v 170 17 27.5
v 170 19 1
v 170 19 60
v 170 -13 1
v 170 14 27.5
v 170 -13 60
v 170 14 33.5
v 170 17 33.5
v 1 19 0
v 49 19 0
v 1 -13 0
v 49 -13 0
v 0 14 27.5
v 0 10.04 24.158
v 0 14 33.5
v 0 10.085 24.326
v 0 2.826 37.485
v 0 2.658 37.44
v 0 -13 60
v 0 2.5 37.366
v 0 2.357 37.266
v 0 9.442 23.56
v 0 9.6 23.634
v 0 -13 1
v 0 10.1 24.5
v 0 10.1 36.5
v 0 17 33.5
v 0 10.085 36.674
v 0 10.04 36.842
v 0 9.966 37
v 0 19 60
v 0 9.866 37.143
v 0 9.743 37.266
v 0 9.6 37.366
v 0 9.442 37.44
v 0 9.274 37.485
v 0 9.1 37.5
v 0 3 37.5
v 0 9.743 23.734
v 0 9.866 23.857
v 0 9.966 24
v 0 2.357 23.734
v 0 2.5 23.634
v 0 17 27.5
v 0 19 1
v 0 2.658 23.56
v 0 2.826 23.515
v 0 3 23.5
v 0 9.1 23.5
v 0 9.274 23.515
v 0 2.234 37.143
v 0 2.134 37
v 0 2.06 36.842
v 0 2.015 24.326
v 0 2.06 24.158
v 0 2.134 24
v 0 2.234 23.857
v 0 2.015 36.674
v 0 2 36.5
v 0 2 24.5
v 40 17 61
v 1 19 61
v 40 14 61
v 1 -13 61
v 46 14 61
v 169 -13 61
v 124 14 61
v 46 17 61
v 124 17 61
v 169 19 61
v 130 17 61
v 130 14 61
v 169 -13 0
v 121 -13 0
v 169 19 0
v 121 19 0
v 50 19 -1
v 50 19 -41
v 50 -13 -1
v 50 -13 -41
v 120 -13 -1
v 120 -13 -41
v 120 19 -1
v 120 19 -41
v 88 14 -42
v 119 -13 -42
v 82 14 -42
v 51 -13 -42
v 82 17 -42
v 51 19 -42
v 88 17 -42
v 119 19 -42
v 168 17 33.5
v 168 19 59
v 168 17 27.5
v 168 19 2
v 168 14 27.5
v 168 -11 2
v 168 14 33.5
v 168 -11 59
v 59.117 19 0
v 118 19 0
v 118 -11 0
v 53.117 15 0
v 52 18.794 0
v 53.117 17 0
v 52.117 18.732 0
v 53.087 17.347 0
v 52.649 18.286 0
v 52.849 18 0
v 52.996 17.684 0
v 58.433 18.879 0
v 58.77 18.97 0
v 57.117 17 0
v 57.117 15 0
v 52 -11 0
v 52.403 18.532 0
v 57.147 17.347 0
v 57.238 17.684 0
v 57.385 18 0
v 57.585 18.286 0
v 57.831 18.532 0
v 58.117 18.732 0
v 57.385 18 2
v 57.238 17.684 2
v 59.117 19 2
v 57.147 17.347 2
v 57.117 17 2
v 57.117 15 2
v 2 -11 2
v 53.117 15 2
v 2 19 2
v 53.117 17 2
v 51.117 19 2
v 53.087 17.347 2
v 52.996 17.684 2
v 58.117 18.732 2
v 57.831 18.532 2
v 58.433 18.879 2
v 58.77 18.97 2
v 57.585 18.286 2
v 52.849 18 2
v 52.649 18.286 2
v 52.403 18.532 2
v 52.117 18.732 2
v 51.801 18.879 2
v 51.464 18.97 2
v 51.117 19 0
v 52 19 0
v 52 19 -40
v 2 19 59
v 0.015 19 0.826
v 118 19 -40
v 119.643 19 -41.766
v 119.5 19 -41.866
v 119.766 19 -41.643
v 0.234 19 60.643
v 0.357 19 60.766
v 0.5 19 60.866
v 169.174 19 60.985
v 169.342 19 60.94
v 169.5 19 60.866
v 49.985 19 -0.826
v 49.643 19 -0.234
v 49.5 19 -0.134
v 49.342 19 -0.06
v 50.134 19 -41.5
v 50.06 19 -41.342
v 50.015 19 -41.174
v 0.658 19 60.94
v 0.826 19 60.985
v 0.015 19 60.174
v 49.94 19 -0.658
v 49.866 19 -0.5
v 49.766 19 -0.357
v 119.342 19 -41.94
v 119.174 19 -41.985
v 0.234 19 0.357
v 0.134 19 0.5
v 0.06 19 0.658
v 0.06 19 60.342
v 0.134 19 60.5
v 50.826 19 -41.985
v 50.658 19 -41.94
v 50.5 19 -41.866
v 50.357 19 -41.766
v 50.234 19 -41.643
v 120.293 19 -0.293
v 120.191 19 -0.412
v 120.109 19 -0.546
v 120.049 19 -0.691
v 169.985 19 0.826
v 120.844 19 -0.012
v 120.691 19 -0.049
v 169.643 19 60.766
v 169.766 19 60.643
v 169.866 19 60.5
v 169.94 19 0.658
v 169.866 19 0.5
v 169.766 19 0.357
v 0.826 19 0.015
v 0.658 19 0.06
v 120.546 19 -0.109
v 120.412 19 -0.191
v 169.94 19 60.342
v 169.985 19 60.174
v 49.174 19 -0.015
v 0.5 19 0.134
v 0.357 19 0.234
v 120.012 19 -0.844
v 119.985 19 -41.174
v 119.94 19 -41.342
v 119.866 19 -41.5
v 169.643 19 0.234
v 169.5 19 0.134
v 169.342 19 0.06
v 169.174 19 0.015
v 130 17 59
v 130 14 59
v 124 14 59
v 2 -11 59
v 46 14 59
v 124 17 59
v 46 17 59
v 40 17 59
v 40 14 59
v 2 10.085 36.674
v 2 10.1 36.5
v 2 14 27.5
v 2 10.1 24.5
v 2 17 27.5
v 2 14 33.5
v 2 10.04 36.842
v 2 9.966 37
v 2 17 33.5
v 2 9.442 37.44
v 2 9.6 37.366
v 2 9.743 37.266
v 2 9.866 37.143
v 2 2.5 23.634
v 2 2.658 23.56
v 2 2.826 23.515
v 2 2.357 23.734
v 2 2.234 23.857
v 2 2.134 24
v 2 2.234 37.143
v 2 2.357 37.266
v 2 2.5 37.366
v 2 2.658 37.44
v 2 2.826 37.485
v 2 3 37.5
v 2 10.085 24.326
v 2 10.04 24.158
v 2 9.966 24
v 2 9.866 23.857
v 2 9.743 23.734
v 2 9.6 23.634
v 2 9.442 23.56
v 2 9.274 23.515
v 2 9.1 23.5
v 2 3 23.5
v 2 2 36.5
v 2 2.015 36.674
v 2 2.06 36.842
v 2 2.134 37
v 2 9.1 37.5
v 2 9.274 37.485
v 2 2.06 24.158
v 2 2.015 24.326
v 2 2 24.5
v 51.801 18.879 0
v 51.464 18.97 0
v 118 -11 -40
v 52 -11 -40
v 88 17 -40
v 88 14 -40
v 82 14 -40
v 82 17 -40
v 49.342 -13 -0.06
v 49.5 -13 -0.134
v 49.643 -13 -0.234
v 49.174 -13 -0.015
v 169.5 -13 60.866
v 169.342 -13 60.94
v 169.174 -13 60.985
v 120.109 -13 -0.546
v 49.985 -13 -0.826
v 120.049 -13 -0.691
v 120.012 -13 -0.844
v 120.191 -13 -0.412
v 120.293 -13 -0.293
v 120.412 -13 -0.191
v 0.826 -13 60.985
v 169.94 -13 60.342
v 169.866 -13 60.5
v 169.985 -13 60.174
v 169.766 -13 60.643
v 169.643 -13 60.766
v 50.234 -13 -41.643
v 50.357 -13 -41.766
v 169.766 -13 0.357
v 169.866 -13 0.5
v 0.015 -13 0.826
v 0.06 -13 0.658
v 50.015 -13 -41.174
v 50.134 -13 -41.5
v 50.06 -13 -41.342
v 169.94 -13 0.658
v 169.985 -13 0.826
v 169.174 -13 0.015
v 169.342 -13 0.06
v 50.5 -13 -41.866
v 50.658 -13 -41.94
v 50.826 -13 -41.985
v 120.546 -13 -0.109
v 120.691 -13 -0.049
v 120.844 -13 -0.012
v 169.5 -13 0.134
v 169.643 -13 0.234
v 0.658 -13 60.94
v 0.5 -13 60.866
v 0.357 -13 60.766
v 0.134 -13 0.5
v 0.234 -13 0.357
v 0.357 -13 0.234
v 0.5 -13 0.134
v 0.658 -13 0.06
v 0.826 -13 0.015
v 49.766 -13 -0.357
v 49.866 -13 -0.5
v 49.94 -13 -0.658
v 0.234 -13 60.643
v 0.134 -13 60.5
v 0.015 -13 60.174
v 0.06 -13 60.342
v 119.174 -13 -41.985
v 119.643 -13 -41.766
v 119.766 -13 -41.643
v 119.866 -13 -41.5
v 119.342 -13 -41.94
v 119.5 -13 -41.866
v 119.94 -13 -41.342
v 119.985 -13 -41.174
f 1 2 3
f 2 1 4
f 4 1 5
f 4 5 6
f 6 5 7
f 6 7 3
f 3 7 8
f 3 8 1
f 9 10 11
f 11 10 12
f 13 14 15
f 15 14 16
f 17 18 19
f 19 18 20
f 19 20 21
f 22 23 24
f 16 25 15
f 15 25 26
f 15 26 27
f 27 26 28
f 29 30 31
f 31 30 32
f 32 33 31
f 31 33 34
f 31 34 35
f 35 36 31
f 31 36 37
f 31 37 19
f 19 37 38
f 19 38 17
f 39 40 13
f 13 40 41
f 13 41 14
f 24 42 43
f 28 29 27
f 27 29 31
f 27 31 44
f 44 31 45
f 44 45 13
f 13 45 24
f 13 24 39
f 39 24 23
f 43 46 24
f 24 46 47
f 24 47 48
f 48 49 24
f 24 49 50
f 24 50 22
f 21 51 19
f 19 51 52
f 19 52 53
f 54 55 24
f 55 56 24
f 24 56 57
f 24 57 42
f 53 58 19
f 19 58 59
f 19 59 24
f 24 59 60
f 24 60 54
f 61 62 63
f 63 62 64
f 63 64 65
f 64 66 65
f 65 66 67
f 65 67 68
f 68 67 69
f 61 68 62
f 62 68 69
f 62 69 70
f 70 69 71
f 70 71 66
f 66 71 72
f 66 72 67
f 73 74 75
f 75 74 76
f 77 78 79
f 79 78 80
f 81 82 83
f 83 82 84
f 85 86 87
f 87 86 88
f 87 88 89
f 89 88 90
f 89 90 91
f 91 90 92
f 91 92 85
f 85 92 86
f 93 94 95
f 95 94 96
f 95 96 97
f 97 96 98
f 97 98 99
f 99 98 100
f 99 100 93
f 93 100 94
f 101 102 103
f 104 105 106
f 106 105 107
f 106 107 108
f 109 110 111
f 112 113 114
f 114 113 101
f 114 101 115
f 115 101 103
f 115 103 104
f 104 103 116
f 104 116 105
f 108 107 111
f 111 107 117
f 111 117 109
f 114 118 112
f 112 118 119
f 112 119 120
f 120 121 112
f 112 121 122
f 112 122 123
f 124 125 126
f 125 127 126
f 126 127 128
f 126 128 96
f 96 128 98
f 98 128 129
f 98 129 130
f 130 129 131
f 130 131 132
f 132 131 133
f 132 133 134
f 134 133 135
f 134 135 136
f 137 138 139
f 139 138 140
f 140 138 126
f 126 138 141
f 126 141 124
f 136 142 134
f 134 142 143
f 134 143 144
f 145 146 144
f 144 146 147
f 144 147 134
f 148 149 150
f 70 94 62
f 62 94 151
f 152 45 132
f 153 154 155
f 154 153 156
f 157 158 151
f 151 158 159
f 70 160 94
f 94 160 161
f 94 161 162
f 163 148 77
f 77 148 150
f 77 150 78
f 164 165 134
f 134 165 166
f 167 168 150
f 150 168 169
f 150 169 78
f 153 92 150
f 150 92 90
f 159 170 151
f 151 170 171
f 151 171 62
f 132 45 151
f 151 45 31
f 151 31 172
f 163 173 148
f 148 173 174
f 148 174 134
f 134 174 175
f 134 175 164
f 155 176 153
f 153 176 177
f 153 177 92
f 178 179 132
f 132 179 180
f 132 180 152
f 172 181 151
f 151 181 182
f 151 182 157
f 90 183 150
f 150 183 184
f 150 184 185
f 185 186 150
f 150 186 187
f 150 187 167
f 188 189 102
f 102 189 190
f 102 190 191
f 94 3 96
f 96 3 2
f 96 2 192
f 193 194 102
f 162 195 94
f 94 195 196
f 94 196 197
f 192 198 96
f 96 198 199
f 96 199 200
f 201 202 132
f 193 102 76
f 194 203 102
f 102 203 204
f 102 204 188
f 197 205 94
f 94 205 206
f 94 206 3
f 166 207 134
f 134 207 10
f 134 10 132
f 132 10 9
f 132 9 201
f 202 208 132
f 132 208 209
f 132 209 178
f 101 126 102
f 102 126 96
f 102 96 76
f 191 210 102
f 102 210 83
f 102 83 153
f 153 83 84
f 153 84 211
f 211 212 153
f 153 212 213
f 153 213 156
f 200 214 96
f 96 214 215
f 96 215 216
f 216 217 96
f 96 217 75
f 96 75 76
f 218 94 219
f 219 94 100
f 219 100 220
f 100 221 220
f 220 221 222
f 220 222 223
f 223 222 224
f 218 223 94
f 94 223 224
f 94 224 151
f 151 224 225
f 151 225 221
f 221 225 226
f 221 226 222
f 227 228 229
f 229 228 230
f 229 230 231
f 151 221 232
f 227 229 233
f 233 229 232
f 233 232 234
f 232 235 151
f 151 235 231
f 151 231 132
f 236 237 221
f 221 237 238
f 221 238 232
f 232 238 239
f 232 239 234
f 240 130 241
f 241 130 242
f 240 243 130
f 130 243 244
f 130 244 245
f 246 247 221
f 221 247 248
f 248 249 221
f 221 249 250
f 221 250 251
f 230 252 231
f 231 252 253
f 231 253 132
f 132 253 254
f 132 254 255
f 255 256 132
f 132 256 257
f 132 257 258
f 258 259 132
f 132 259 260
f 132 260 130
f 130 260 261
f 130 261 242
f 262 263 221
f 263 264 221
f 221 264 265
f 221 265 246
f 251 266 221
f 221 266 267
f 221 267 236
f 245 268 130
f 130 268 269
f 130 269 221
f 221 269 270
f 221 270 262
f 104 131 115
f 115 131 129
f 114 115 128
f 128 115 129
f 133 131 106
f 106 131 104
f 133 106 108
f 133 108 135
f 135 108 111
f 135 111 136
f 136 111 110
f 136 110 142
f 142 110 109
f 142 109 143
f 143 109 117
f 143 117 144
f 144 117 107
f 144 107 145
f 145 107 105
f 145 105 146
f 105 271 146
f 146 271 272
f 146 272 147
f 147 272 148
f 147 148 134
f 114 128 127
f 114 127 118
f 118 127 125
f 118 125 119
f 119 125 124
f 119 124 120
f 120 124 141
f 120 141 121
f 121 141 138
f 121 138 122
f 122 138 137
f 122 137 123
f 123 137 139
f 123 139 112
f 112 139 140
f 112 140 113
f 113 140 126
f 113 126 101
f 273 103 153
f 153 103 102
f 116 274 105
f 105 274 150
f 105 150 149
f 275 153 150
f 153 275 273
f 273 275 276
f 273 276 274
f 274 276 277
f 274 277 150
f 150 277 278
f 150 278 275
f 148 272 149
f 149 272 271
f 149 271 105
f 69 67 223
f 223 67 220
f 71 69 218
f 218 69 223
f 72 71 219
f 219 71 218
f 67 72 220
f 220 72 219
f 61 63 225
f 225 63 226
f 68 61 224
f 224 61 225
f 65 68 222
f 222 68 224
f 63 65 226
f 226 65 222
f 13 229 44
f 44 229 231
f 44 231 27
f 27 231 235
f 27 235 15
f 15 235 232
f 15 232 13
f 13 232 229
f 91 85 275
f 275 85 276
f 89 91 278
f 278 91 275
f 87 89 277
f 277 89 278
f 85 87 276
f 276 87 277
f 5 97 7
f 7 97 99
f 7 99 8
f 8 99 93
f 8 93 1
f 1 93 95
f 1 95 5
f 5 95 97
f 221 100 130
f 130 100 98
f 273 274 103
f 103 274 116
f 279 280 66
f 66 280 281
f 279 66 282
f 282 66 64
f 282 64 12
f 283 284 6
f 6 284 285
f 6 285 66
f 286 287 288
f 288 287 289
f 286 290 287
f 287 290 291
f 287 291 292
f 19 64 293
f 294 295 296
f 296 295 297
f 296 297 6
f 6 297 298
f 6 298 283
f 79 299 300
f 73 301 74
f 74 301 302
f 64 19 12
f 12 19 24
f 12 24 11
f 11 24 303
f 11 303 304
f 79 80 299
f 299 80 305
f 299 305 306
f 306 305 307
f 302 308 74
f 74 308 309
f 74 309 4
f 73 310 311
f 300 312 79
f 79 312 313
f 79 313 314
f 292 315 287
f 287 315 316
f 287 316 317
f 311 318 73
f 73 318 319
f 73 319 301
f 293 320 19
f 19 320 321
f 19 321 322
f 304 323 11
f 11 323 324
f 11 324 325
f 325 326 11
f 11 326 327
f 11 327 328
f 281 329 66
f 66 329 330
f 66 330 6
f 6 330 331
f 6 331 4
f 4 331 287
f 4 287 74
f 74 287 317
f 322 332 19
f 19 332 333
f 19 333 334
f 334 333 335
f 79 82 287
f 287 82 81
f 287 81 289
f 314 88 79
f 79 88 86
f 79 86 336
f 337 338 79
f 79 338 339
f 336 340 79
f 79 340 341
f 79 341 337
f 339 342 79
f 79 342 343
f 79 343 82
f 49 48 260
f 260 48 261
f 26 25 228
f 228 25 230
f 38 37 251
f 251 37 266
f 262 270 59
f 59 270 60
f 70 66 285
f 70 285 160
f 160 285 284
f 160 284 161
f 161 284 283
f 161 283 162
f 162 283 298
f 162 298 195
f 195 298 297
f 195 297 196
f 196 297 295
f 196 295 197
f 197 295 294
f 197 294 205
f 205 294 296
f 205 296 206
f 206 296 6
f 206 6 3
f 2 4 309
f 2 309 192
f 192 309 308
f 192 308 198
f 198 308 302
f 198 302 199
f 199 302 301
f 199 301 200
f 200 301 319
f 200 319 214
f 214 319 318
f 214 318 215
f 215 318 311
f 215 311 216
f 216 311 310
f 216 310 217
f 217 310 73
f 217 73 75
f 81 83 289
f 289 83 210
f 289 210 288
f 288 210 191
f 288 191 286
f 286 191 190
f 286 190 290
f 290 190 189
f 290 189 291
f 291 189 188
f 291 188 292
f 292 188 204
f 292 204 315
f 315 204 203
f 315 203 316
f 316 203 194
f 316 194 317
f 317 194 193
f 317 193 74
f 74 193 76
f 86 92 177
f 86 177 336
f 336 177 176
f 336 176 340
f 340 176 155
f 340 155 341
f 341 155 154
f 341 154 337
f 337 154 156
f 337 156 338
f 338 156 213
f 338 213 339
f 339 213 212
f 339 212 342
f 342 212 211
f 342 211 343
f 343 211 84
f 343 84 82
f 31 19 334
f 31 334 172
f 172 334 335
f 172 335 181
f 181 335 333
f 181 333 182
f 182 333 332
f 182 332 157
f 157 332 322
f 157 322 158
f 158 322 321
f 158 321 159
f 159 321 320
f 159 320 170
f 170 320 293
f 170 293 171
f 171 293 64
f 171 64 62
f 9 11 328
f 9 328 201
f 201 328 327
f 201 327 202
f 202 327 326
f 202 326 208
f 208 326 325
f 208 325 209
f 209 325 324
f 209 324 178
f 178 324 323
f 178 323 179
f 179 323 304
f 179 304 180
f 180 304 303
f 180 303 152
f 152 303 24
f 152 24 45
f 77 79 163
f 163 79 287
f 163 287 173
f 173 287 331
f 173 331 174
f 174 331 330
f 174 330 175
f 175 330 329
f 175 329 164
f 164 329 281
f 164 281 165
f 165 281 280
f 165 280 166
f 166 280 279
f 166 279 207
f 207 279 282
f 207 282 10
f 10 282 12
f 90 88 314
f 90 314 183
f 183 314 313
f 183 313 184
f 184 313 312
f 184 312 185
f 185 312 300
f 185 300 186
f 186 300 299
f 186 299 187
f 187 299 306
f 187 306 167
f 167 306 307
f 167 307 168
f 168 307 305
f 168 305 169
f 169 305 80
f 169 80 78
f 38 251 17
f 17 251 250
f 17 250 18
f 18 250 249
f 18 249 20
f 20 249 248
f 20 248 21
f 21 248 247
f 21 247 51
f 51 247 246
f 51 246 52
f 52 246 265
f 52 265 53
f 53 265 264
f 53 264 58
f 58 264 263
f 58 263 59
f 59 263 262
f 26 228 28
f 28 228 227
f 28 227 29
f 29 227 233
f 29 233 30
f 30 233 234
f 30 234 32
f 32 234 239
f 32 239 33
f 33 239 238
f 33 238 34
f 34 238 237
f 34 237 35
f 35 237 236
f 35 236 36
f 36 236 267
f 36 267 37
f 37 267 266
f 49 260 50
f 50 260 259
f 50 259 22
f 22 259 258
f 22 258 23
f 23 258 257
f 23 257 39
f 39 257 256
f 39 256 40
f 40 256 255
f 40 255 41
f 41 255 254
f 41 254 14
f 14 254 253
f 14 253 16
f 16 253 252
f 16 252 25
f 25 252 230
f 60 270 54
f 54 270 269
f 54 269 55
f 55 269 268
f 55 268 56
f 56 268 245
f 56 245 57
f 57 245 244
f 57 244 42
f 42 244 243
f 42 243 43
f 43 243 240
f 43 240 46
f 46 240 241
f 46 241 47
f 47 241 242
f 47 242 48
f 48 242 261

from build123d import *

# Parameters (mm, degrees)
SKETCH1_W           = 170
SKETCH1_H           = 61
BOSS_EXTRUDE1_DEPTH = 2
SKETCH2_W           = 170
SKETCH2_H           = 2
BOSS_EXTRUDE2_DEPTH = 17
SKETCH3_W           = 166
SKETCH3_H           = 2
BOSS_EXTRUDE3_DEPTH = 17
SKETCH4_W           = 70
SKETCH4_H           = 2
BOSS_EXTRUDE4_DEPTH = 42
SKETCH5_W           = 4
SKETCH5_H           = 8
CUT_EXTRUDE1_DEPTH  = 39
FILLET1_R           = 2
SKETCH6_W           = 2
SKETCH6_H           = 42
BOSS_EXTRUDE5_DEPTH = 17
SKETCH9_W           = 66
SKETCH9_H           = 2
BOSS_EXTRUDE6_DEPTH = 17
SKETCH10_W          = 6
SKETCH10_H          = 3
CUT_EXTRUDE2_DEPTH  = 10
SKETCH11_W          = 6
SKETCH11_H          = 3
CUT_EXTRUDE3_DEPTH  = 10
SKETCH12_W          = 6
SKETCH12_H          = 3
CUT_EXTRUDE4_DEPTH  = 10
SKETCH13_W          = 6
SKETCH13_H          = 3
CUT_EXTRUDE5_DEPTH  = 10
CUT_EXTRUDE6_DEPTH  = 2
SKETCH15_W          = 66
SKETCH15_H          = 40
SKETCH15_W_2        = 166
SKETCH15_H_2        = 57
BOSS_EXTRUDE7_DEPTH = 13
BOSS_EXTRUDE8_DEPTH = 2
SKETCH17_W          = 14
SKETCH17_H          = 8.1
CUT_EXTRUDE7_DEPTH  = 2
FILLET2_R           = 1
FILLET3_R           = 1


with BuildPart() as part:
    # Sketch1 → Boss-Extrude1 (new body)
    with BuildSketch(Plane(origin=(0, 0, 0), x_dir=(1, 0, 0), z_dir=(0, 1, 0))):
        with Locations((85, -30.5)):
            Rectangle(SKETCH1_W, SKETCH1_H)
    extrude(amount=BOSS_EXTRUDE1_DEPTH)

    # Sketch2 → Boss-Extrude2 (add)
    with BuildSketch(Plane(origin=(0, 2, 0), x_dir=(1, 0, 0), z_dir=(0, 1, 0))):
        with Locations((85, -1)):
            Rectangle(SKETCH2_W, SKETCH2_H)
    extrude(amount=BOSS_EXTRUDE2_DEPTH)

    # Sketch3 → Boss-Extrude3 (add)
    with BuildSketch(Plane(origin=(0, 2, 0), x_dir=(1, 0, 0), z_dir=(0, 1, 0))):
        Polygon((0, -2), (0, -61), (2, -61), (2, -59), (2, -2), align=None)
        Polygon((168, -59), (168, -61), (170, -61), (170, -2), (168, -2), align=None)
        with Locations((85, -60)):
            Rectangle(SKETCH3_W, SKETCH3_H)
    extrude(amount=BOSS_EXTRUDE3_DEPTH)

    # Sketch4 → Boss-Extrude4 (add)
    with BuildSketch(Plane(origin=(0, 0, 0), x_dir=(-1, 0, 0), z_dir=(0, 0, -1))):
        with Locations((-85, 1)):
            Rectangle(SKETCH4_W, SKETCH4_H)
    extrude(amount=BOSS_EXTRUDE4_DEPTH)

    # Sketch5 → Cut-Extrude1 (cut)
    with BuildSketch(Plane(origin=(0, 0, 0), x_dir=(-1, 0, 0), z_dir=(0, 0, -1))):
        with Locations((-55.116937283, 19)):
            Rectangle(SKETCH5_W, SKETCH5_H)
    extrude(amount=-CUT_EXTRUDE1_DEPTH, mode=Mode.SUBTRACT)

    # Fillet1
    fillet1_edges = [part.edges().sort_by_distance(p)[0] for p in [
        (53.116937283, 19, 1),
        (57.116937283, 19, 1),
    ]]
    fillet(fillet1_edges, radius=FILLET1_R)

    # Sketch6 → Boss-Extrude5 (add)
    with BuildSketch(Plane(origin=(0, 2, 0), x_dir=(1, 0, 0), z_dir=(0, 1, 0))):
        with Locations((119, 21)):
            Rectangle(SKETCH6_W, SKETCH6_H)
    extrude(amount=BOSS_EXTRUDE5_DEPTH)

    # Sketch9 → Boss-Extrude6 (add)
    with BuildSketch(Plane(origin=(0, 2, 0), x_dir=(1, 0, 0), z_dir=(0, 1, 0))):
        Polygon((52, 42), (50, 42), (50, 0), (52, 0), (52, 40), align=None)
        with Locations((85, 41)):
            Rectangle(SKETCH9_W, SKETCH9_H)
    extrude(amount=BOSS_EXTRUDE6_DEPTH)

    # Sketch10 → Cut-Extrude2 (cut)
    with BuildSketch(Plane.XY.offset(61)):
        with Locations((43, 15.5)):
            Rectangle(SKETCH10_W, SKETCH10_H)
        with Locations((127, 15.5)):
            Rectangle(SKETCH10_W, SKETCH10_H)
    extrude(amount=-CUT_EXTRUDE2_DEPTH, mode=Mode.SUBTRACT)

    # Sketch11 → Cut-Extrude3 (cut)
    with BuildSketch(Plane.ZY):
        with Locations((30.5, 15.5)):
            Rectangle(SKETCH11_W, SKETCH11_H)
    extrude(amount=-CUT_EXTRUDE3_DEPTH, mode=Mode.SUBTRACT)

    # Sketch12 → Cut-Extrude4 (cut)
    with BuildSketch(Plane(origin=(0, 0, -42), x_dir=(-1, 0, 0), z_dir=(0, 0, -1))):
        with Locations((-85, 15.5)):
            Rectangle(SKETCH12_W, SKETCH12_H)
    extrude(amount=-CUT_EXTRUDE4_DEPTH, mode=Mode.SUBTRACT)

    # Sketch13 → Cut-Extrude5 (cut)
    with BuildSketch(Plane(origin=(170, 0, 0), x_dir=(0, 0, -1), z_dir=(1, 0, 0))):
        with Locations((-30.5, 15.5)):
            Rectangle(SKETCH13_W, SKETCH13_H)
    extrude(amount=-CUT_EXTRUDE5_DEPTH, mode=Mode.SUBTRACT)

    # Sketch14 → Cut-Extrude6 (cut)
    with BuildSketch(Plane.XZ):
        Polygon((0, 61), (0, 0), (50, 0), (50, -42), (120, -42), (120, 0), (170, 0), (170, 61), align=None)
    extrude(amount=-CUT_EXTRUDE6_DEPTH, mode=Mode.SUBTRACT)

    # Sketch15 → Boss-Extrude7 (add)
    with BuildSketch(Plane.XZ.offset(-2)):
        Polygon((170, 61), (0, 61), (0, 0), (50, 0), (50, -42), (120, -42), (120, 0), (170, 0), align=None)
        with Locations((85, -20)):
            Rectangle(SKETCH15_W, SKETCH15_H, mode=Mode.SUBTRACT)
        with Locations((85, 30.5)):
            Rectangle(SKETCH15_W_2, SKETCH15_H_2, mode=Mode.SUBTRACT)
    extrude(amount=BOSS_EXTRUDE7_DEPTH)

    # Sketch16 → Boss-Extrude8 (add)
    with BuildSketch(Plane.XZ.offset(11)):
        Polygon((120, -42), (120, 0), (170, 0), (170, 61), (0, 61), (0, 0), (50, 0), (50, -42), align=None)
    extrude(amount=BOSS_EXTRUDE8_DEPTH)

    # Sketch17 → Cut-Extrude7 (cut)
    with BuildSketch(Plane.ZY):
        with Locations((30.5, 6.05)):
            Rectangle(SKETCH17_W, SKETCH17_H)
    extrude(amount=-CUT_EXTRUDE7_DEPTH, mode=Mode.SUBTRACT)

    # Fillet2
    fillet2_edges = [part.edges().sort_by_distance(p)[0] for p in [
        (50, 3, -42),
        (120, 3, -42),
        (120, 3, 0),
        (50, 3, 0),
        (0, 3, 0),
        (170, 3, 0),
        (170, 3, 61),
        (0, 3, 61),
    ]]
    fillet(fillet2_edges, radius=FILLET2_R)

    # Fillet3
    fillet3_edges = [part.edges().sort_by_distance(p)[0] for p in [
        (1, 2, 23.5),
        (1, 10.1, 23.5),
        (1, 10.1, 37.5),
        (1, 2, 37.5),
    ]]
    fillet(fillet3_edges, radius=FILLET3_R)


solid = part.part
